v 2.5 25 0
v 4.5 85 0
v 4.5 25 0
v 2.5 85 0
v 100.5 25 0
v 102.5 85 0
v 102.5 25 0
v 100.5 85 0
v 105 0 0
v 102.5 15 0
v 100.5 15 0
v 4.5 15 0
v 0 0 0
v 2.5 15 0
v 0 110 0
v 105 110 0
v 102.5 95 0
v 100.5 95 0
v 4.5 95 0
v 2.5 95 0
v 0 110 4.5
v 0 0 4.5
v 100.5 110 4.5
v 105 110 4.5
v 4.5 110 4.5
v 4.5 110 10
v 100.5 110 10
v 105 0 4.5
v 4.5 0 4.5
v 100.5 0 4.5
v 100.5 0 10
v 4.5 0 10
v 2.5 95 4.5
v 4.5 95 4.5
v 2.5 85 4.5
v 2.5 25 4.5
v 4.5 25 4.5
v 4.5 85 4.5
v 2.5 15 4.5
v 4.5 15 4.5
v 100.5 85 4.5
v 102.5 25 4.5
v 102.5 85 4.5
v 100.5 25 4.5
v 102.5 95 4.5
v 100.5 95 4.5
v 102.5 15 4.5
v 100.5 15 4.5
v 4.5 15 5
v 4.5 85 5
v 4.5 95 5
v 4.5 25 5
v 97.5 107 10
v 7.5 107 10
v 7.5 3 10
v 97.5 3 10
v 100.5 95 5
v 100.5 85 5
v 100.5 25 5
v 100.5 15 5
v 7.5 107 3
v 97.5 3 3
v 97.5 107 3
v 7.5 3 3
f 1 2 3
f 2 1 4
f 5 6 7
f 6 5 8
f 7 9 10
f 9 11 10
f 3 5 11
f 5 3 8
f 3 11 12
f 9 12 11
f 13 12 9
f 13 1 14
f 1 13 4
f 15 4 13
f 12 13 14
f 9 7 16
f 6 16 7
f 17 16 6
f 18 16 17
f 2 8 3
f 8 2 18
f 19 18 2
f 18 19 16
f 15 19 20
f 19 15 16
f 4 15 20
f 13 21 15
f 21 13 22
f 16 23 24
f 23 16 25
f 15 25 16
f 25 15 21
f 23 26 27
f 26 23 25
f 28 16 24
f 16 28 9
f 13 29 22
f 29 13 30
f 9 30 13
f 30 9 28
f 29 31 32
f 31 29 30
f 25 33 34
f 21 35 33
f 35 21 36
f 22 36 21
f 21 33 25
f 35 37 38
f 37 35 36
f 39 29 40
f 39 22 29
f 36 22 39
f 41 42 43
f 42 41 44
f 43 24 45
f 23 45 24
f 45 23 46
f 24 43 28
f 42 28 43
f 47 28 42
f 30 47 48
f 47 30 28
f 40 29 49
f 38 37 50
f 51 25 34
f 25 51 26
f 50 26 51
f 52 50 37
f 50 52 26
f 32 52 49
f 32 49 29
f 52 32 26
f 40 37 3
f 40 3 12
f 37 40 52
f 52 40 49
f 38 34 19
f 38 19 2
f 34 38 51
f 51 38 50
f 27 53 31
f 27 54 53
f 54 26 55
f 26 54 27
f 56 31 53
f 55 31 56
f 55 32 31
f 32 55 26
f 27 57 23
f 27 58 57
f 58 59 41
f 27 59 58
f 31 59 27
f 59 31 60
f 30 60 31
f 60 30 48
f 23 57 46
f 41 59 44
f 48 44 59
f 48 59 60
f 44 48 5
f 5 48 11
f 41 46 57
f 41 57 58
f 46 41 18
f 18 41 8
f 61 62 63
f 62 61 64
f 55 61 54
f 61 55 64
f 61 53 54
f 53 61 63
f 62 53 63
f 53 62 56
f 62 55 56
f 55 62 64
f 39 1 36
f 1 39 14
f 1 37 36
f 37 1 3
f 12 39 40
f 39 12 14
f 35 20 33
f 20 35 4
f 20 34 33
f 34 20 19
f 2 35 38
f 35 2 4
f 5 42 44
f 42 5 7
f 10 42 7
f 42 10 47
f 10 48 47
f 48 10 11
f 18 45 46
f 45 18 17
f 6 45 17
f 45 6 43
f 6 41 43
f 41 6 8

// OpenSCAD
include <bolts/BOLTS.scad>

$fn=30;

difference() {

    union() {
        linear_extrude(height=3.0)
            square([105,110]);
        translate([0, 0, 2])        
        linear_extrude(height=2.5)
            square([5, 110]);
        translate([100, 0, 2])        
        linear_extrude(height=2.5)
            square([5, 110]);
        
        translate([4.5, 0, 0])
        linear_extrude(height=10)
          square([96, 110]);        
    }

        translate([7.5, 3, 3.0])
        linear_extrude(height=10)
          square([90, 104]);        

        translate([2.5, 15, 0.0])
        linear_extrude(height=5)
          square([2, 10]);        

        translate([2.5, 85, 0.0])
        linear_extrude(height=5)
          square([2, 10]);        

        translate([100.5, 15, 0.0])
        linear_extrude(height=5)
          square([2, 10]);        

        translate([100.5, 85, 0.0])
        linear_extrude(height=5)
          square([2, 10]);

}
